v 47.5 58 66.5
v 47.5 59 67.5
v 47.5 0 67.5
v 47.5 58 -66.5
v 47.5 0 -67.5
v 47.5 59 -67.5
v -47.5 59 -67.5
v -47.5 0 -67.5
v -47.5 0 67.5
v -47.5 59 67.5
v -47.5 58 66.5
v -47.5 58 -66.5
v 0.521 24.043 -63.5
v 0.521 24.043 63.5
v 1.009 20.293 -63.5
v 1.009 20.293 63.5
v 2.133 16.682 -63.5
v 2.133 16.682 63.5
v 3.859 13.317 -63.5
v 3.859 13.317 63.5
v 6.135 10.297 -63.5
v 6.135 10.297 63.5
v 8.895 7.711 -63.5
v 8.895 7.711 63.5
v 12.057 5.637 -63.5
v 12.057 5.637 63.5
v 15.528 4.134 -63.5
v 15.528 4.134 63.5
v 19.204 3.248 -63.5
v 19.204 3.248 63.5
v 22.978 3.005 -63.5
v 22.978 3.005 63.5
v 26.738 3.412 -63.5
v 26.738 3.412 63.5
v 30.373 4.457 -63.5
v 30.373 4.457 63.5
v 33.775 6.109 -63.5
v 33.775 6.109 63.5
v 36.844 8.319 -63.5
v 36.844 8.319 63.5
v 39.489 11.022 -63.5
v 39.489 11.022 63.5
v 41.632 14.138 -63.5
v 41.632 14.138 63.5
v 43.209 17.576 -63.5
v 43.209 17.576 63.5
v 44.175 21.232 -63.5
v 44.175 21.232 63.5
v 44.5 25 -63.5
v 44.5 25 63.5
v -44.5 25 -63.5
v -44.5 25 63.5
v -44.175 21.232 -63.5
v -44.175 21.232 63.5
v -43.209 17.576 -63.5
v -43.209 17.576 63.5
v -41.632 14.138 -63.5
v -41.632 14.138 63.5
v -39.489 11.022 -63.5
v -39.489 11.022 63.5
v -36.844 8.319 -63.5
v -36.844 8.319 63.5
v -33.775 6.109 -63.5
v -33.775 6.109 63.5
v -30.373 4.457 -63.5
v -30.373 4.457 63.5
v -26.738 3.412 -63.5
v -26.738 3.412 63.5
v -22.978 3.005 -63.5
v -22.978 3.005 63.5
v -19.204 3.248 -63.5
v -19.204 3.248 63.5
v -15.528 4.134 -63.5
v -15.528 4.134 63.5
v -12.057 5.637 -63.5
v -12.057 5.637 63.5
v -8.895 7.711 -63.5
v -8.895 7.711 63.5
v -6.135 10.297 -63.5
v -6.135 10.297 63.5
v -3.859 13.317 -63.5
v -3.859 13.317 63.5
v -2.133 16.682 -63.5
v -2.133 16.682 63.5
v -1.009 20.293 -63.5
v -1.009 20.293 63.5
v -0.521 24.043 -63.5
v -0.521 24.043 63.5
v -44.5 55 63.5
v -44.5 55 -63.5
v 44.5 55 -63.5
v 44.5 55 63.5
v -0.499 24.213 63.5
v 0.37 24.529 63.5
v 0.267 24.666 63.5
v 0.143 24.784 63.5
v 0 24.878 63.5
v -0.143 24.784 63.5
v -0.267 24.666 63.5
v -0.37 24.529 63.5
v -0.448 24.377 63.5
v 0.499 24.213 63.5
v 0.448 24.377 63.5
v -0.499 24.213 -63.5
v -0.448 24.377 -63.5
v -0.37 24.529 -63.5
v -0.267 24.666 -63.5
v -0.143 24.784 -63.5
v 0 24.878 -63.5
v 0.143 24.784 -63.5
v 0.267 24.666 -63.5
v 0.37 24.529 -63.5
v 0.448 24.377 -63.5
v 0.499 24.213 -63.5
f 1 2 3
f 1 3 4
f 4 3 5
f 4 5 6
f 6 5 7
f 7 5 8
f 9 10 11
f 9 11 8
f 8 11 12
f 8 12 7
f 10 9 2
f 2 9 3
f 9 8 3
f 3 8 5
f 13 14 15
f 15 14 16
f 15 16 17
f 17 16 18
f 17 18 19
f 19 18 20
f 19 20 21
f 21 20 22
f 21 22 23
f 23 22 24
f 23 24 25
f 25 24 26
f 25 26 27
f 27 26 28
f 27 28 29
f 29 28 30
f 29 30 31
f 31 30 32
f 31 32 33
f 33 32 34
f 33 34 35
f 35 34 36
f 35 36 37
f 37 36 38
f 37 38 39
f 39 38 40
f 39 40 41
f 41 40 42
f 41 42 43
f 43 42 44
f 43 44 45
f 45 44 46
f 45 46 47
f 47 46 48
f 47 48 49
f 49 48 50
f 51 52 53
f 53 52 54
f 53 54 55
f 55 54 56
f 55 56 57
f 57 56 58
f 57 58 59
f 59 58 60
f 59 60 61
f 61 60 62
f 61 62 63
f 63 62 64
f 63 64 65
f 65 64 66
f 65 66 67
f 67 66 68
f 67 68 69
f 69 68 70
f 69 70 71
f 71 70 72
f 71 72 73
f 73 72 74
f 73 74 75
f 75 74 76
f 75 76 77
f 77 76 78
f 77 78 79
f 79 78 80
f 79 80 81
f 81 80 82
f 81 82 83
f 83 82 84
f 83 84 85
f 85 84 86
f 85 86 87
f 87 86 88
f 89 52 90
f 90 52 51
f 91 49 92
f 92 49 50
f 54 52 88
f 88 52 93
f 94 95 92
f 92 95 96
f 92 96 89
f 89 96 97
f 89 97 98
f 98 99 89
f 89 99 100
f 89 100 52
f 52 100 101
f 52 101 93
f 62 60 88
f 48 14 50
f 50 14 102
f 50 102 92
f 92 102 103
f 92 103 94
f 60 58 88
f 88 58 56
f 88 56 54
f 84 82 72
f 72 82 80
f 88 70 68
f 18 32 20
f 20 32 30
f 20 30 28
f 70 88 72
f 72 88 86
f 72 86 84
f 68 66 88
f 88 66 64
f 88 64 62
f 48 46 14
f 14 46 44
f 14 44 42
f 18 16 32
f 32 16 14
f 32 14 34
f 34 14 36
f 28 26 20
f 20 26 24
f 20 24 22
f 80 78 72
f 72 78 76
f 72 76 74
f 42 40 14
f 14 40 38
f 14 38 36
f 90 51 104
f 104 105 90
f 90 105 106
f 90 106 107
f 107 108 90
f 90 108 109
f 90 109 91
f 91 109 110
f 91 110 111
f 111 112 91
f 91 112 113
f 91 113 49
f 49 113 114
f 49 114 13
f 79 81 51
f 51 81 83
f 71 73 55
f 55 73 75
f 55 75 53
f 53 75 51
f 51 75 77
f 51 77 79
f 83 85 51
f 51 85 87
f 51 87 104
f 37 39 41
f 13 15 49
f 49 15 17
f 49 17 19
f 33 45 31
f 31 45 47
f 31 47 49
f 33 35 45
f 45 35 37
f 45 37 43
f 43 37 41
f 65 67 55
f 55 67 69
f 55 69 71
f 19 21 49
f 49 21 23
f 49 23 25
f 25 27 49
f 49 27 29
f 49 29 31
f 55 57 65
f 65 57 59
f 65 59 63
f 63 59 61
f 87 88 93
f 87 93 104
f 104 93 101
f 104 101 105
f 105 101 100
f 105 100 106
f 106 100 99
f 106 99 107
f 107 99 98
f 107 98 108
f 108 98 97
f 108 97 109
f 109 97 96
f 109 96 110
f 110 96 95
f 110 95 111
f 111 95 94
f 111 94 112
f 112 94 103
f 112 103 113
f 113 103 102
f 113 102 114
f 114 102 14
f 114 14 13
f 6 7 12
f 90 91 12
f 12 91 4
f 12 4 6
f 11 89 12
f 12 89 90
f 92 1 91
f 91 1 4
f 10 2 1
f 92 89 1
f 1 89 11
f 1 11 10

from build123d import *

# Parameters (mm, degrees)
SKETCH1_W           = 95
SKETCH1_H           = 135
BOSS_EXTRUDE1_DEPTH = 65
CUT_EXTRUDE1_DEPTH  = 127
FILLET1_R           = 1


with BuildPart() as part:
    # Sketch1 → Boss-Extrude1 (new body)
    with BuildSketch(Plane(origin=(0, 0, 0), x_dir=(1, 0, 0), z_dir=(0, 1, 0))):
        Rectangle(SKETCH1_W, SKETCH1_H)
    extrude(amount=BOSS_EXTRUDE1_DEPTH)

    # Sketch2 → Cut-Extrude1 (cut)
    with BuildSketch(Plane.XY.offset(63.5)):
        with BuildLine():
            Line((-44.5, 25), (-44.5, 70))
            Line((-44.5, 70), (44.5, 70))
            Line((44.5, 70), (44.5, 25))
            ThreePointArc((44.5, 25), (22.5, 3), (0.5, 25))
            Line((0.5, 25), (-0.5, 25))
            ThreePointArc((-0.5, 25), (-22.5, 3), (-44.5, 25))
        make_face()
    extrude(amount=-CUT_EXTRUDE1_DEPTH, mode=Mode.SUBTRACT)

    # Fillet1
    # the kernel refuses this fillet: 1 mm, written as the material it takes off along each edge
    with BuildSketch(Plane(origin=(0.5, 25, 63.5), x_dir=(-1, 0, 0), z_dir=(0, 0, -1))) as fillet1_piece_1:
        with BuildLine():
            CenterArc((0.978250586, -1), FILLET1_R, 90, 87.508093631)
            ThreePointArc((-0.020803787, -0.956521739), (-0.005201562, -0.478373974), (0, 0))
            Line((0, 0), (0.978250586, 0))
        make_face()
    extrude(amount=127, mode=Mode.SUBTRACT)
    with BuildSketch(Plane(origin=(-0.5, 25, 63.5), x_dir=(-0.02174427153342351, -0.9997635653770749, 0), z_dir=(0, 0, -1))) as fillet1_piece_2:
        with BuildLine():
            CenterArc((0.978492219, -0.999763565), FILLET1_R, 91.245953184, 87.508093631)
            Line((-0.021271346, -0.978019294), (0, 0))
            ThreePointArc((0, 0), (0.478373974, -0.005201562), (0.956747947, 0))
        make_face()
    extrude(amount=127, mode=Mode.SUBTRACT)

    # Chamfer1
    # the kernel refuses this chamfer: 10 mm, written as the material it takes off along each edge
    with BuildSketch(Plane(origin=(-44.5, 65, 63.5), x_dir=(0, 0.027495876610586317, 0.9996219169112968), z_dir=(1, 0, 0))) as chamfer1_piece_1:
        with BuildLine():
            Line((10.286731952, 0), (-0.565471549, 10.271177935))
            Line((-0.565471549, 10.271177935), (-0.765395932, 10.26567876))
            ThreePointArc((-0.765395932, 10.26567876), (-0.341292271, 5.133978296), (-0.199924383, -0.005499175))
            Line((-0.199924383, -0.005499175), (0.005499175, -0.199924383))
            ThreePointArc((0.005499175, -0.199924383), (5.144976647, -0.058556496), (10.292231127, -0.199924383))
            Line((10.292231127, -0.199924383), (10.286731952, 0))
        make_face()
    extrude(amount=89, mode=Mode.SUBTRACT)
    with BuildSketch(Plane(origin=(44.5, 65, 63.5), x_dir=(0.9996219169112968, 0.027495876610586317, 0), z_dir=(0, 0, -1)), Plane(origin=(-44.5, 65, -63.5), x_dir=(-0.9996219169112968, 0.027495876610586317, 0), z_dir=(0, 0, 1))) as chamfer1_piece_2:
        with BuildLine():
            Line((10.286731952, 0), (-0.565471549, 10.271177935))
            Line((-0.565471549, 10.271177935), (-0.765395932, 10.26567876))
            ThreePointArc((-0.765395932, 10.26567876), (-0.341292271, 5.133978296), (-0.199924383, -0.005499175))
            Line((-0.199924383, -0.005499175), (0.005499175, -0.199924383))
            ThreePointArc((0.005499175, -0.199924383), (5.144976647, -0.058556496), (10.292231127, -0.199924383))
            Line((10.292231127, -0.199924383), (10.286731952, 0))
        make_face()
    extrude(amount=127, mode=Mode.SUBTRACT)
    with BuildSketch(Plane(origin=(-44.5, 65, -63.5), x_dir=(0, 0.027495876610586317, -0.9996219169112968), z_dir=(1, 0, 0))) as chamfer1_piece_3:
        with BuildLine():
            Line((10.286731952, 0), (-0.565471549, -10.271177935))
            Line((-0.565471549, -10.271177935), (-0.765395932, -10.26567876))
            ThreePointArc((-0.765395932, -10.26567876), (-0.341292271, -5.133978296), (-0.199924383, 0.005499175))
            Line((-0.199924383, 0.005499175), (0.005499175, 0.199924383))
            ThreePointArc((0.005499175, 0.199924383), (5.144976647, 0.058556496), (10.292231127, 0.199924383))
            Line((10.292231127, 0.199924383), (10.286731952, 0))
        make_face()
    extrude(amount=89, mode=Mode.SUBTRACT)
    with BuildSketch(Plane(origin=(-70.21682988, 65, 63.5), x_dir=(0, 0.027495876610586317, 0.9996219169112968), z_dir=(1, 0, 0))) as chamfer1_piece_4a_section:
        with BuildLine():
            Line((10.286731952, 0), (-0.565471549, 10.271177935))
            Line((-0.565471549, 10.271177935), (-0.765395932, 10.26567876))
            ThreePointArc((-0.765395932, 10.26567876), (-0.341292271, 5.133978296), (-0.199924383, -0.005499175))
            Line((-0.199924383, -0.005499175), (0.005499175, -0.199924383))
            ThreePointArc((0.005499175, -0.199924383), (5.144976647, -0.058556496), (10.292231127, -0.199924383))
            Line((10.292231127, -0.199924383), (10.286731952, 0))
        make_face()
    chamfer1_piece_4a = extrude(amount=114.71682988, mode=Mode.PRIVATE)
    chamfer1_piece_4a = split(chamfer1_piece_4a, bisect_by=Plane(origin=(-44.5, 61.702063732, 66.797936268), z_dir=(-1, 0, 0)), keep=Keep.TOP, mode=Mode.PRIVATE)
    with BuildSketch(Plane(origin=(-44.5, 65, -63.5), x_dir=(-0.9996219169112968, 0.027495876610586317, 0), z_dir=(0, 0, 1))) as chamfer1_piece_4b_section:
        with BuildLine():
            Line((10.286731952, 0), (-0.565471549, 10.271177935))
            Line((-0.565471549, 10.271177935), (-0.765395932, 10.26567876))
            ThreePointArc((-0.765395932, 10.26567876), (-0.341292271, 5.133978296), (-0.199924383, -0.005499175))
            Line((-0.199924383, -0.005499175), (0.005499175, -0.199924383))
            ThreePointArc((0.005499175, -0.199924383), (5.144976647, -0.058556496), (10.292231127, -0.199924383))
            Line((10.292231127, -0.199924383), (10.286731952, 0))
        make_face()
    chamfer1_piece_4b = extrude(amount=152.71682988, mode=Mode.PRIVATE)
    chamfer1_piece_4b = split(chamfer1_piece_4b, bisect_by=Plane(origin=(-47.797936268, 61.702063732, 63.5), z_dir=(0, 0, 1)), keep=Keep.TOP, mode=Mode.PRIVATE)
    chamfer1_piece_4 = chamfer1_piece_4a & chamfer1_piece_4b
    add(chamfer1_piece_4, mode=Mode.SUBTRACT)
    with BuildSketch(Plane(origin=(44.5, 65, 89.21682988), x_dir=(0.9996219169112968, 0.027495876610586317, 0), z_dir=(0, 0, -1))) as chamfer1_piece_5a_section:
        with BuildLine():
            Line((10.286731952, 0), (-0.565471549, 10.271177935))
            Line((-0.565471549, 10.271177935), (-0.765395932, 10.26567876))
            ThreePointArc((-0.765395932, 10.26567876), (-0.341292271, 5.133978296), (-0.199924383, -0.005499175))
            Line((-0.199924383, -0.005499175), (0.005499175, -0.199924383))
            ThreePointArc((0.005499175, -0.199924383), (5.144976647, -0.058556496), (10.292231127, -0.199924383))
            Line((10.292231127, -0.199924383), (10.286731952, 0))
        make_face()
    chamfer1_piece_5a = extrude(amount=152.71682988, mode=Mode.PRIVATE)
    chamfer1_piece_5a = split(chamfer1_piece_5a, bisect_by=Plane(origin=(47.797936268, 61.702063732, 63.5), z_dir=(0, 0, 1)), keep=Keep.TOP, mode=Mode.PRIVATE)
    with BuildSketch(Plane(origin=(-44.5, 65, 63.5), x_dir=(0, 0.027495876610586317, 0.9996219169112968), z_dir=(1, 0, 0))) as chamfer1_piece_5b_section:
        with BuildLine():
            Line((10.286731952, 0), (-0.565471549, 10.271177935))
            Line((-0.565471549, 10.271177935), (-0.765395932, 10.26567876))
            ThreePointArc((-0.765395932, 10.26567876), (-0.341292271, 5.133978296), (-0.199924383, -0.005499175))
            Line((-0.199924383, -0.005499175), (0.005499175, -0.199924383))
            ThreePointArc((0.005499175, -0.199924383), (5.144976647, -0.058556496), (10.292231127, -0.199924383))
            Line((10.292231127, -0.199924383), (10.286731952, 0))
        make_face()
    chamfer1_piece_5b = extrude(amount=114.71682988, mode=Mode.PRIVATE)
    chamfer1_piece_5b = split(chamfer1_piece_5b, bisect_by=Plane(origin=(44.5, 61.702063732, 66.797936268), z_dir=(1, 0, 0)), keep=Keep.TOP, mode=Mode.PRIVATE)
    chamfer1_piece_5 = chamfer1_piece_5a & chamfer1_piece_5b
    add(chamfer1_piece_5, mode=Mode.SUBTRACT)
    with BuildSketch(Plane(origin=(-44.5, 65, -63.5), x_dir=(0, 0.027495876610586317, -0.9996219169112968), z_dir=(1, 0, 0))) as chamfer1_piece_6a_section:
        with BuildLine():
            Line((10.286731952, 0), (-0.565471549, -10.271177935))
            Line((-0.565471549, -10.271177935), (-0.765395932, -10.26567876))
            ThreePointArc((-0.765395932, -10.26567876), (-0.341292271, -5.133978296), (-0.199924383, 0.005499175))
            Line((-0.199924383, 0.005499175), (0.005499175, 0.199924383))
            ThreePointArc((0.005499175, 0.199924383), (5.144976647, 0.058556496), (10.292231127, 0.199924383))
            Line((10.292231127, 0.199924383), (10.286731952, 0))
        make_face()
    chamfer1_piece_6a = extrude(amount=114.71682988, mode=Mode.PRIVATE)
    chamfer1_piece_6a = split(chamfer1_piece_6a, bisect_by=Plane(origin=(44.5, 61.702063732, -66.797936268), z_dir=(1, 0, 0)), keep=Keep.TOP, mode=Mode.PRIVATE)
    with BuildSketch(Plane(origin=(44.5, 65, 63.5), x_dir=(0.9996219169112968, 0.027495876610586317, 0), z_dir=(0, 0, -1))) as chamfer1_piece_6b_section:
        with BuildLine():
            Line((10.286731952, 0), (-0.565471549, 10.271177935))
            Line((-0.565471549, 10.271177935), (-0.765395932, 10.26567876))
            ThreePointArc((-0.765395932, 10.26567876), (-0.341292271, 5.133978296), (-0.199924383, -0.005499175))
            Line((-0.199924383, -0.005499175), (0.005499175, -0.199924383))
            ThreePointArc((0.005499175, -0.199924383), (5.144976647, -0.058556496), (10.292231127, -0.199924383))
            Line((10.292231127, -0.199924383), (10.286731952, 0))
        make_face()
    chamfer1_piece_6b = extrude(amount=152.71682988, mode=Mode.PRIVATE)
    chamfer1_piece_6b = split(chamfer1_piece_6b, bisect_by=Plane(origin=(47.797936268, 61.702063732, -63.5), z_dir=(0, 0, -1)), keep=Keep.TOP, mode=Mode.PRIVATE)
    chamfer1_piece_6 = chamfer1_piece_6a & chamfer1_piece_6b
    add(chamfer1_piece_6, mode=Mode.SUBTRACT)
    with BuildSketch(Plane(origin=(-70.21682988, 65, -63.5), x_dir=(0, 0.027495876610586317, -0.9996219169112968), z_dir=(1, 0, 0))) as chamfer1_piece_7a_section:
        with BuildLine():
            Line((10.286731952, 0), (-0.565471549, -10.271177935))
            Line((-0.565471549, -10.271177935), (-0.765395932, -10.26567876))
            ThreePointArc((-0.765395932, -10.26567876), (-0.341292271, -5.133978296), (-0.199924383, 0.005499175))
            Line((-0.199924383, 0.005499175), (0.005499175, 0.199924383))
            ThreePointArc((0.005499175, 0.199924383), (5.144976647, 0.058556496), (10.292231127, 0.199924383))
            Line((10.292231127, 0.199924383), (10.286731952, 0))
        make_face()
    chamfer1_piece_7a = extrude(amount=114.71682988, mode=Mode.PRIVATE)
    chamfer1_piece_7a = split(chamfer1_piece_7a, bisect_by=Plane(origin=(-44.5, 61.702063732, -66.797936268), z_dir=(-1, 0, 0)), keep=Keep.TOP, mode=Mode.PRIVATE)
    with BuildSketch(Plane(origin=(-44.5, 65, -89.21682988), x_dir=(-0.9996219169112968, 0.027495876610586317, 0), z_dir=(0, 0, 1))) as chamfer1_piece_7b_section:
        with BuildLine():
            Line((10.286731952, 0), (-0.565471549, 10.271177935))
            Line((-0.565471549, 10.271177935), (-0.765395932, 10.26567876))
            ThreePointArc((-0.765395932, 10.26567876), (-0.341292271, 5.133978296), (-0.199924383, -0.005499175))
            Line((-0.199924383, -0.005499175), (0.005499175, -0.199924383))
            ThreePointArc((0.005499175, -0.199924383), (5.144976647, -0.058556496), (10.292231127, -0.199924383))
            Line((10.292231127, -0.199924383), (10.286731952, 0))
        make_face()
    chamfer1_piece_7b = extrude(amount=152.71682988, mode=Mode.PRIVATE)
    chamfer1_piece_7b = split(chamfer1_piece_7b, bisect_by=Plane(origin=(-47.797936268, 61.702063732, -63.5), z_dir=(0, 0, -1)), keep=Keep.TOP, mode=Mode.PRIVATE)
    chamfer1_piece_7 = chamfer1_piece_7a & chamfer1_piece_7b
    add(chamfer1_piece_7, mode=Mode.SUBTRACT)


solid = part.part
